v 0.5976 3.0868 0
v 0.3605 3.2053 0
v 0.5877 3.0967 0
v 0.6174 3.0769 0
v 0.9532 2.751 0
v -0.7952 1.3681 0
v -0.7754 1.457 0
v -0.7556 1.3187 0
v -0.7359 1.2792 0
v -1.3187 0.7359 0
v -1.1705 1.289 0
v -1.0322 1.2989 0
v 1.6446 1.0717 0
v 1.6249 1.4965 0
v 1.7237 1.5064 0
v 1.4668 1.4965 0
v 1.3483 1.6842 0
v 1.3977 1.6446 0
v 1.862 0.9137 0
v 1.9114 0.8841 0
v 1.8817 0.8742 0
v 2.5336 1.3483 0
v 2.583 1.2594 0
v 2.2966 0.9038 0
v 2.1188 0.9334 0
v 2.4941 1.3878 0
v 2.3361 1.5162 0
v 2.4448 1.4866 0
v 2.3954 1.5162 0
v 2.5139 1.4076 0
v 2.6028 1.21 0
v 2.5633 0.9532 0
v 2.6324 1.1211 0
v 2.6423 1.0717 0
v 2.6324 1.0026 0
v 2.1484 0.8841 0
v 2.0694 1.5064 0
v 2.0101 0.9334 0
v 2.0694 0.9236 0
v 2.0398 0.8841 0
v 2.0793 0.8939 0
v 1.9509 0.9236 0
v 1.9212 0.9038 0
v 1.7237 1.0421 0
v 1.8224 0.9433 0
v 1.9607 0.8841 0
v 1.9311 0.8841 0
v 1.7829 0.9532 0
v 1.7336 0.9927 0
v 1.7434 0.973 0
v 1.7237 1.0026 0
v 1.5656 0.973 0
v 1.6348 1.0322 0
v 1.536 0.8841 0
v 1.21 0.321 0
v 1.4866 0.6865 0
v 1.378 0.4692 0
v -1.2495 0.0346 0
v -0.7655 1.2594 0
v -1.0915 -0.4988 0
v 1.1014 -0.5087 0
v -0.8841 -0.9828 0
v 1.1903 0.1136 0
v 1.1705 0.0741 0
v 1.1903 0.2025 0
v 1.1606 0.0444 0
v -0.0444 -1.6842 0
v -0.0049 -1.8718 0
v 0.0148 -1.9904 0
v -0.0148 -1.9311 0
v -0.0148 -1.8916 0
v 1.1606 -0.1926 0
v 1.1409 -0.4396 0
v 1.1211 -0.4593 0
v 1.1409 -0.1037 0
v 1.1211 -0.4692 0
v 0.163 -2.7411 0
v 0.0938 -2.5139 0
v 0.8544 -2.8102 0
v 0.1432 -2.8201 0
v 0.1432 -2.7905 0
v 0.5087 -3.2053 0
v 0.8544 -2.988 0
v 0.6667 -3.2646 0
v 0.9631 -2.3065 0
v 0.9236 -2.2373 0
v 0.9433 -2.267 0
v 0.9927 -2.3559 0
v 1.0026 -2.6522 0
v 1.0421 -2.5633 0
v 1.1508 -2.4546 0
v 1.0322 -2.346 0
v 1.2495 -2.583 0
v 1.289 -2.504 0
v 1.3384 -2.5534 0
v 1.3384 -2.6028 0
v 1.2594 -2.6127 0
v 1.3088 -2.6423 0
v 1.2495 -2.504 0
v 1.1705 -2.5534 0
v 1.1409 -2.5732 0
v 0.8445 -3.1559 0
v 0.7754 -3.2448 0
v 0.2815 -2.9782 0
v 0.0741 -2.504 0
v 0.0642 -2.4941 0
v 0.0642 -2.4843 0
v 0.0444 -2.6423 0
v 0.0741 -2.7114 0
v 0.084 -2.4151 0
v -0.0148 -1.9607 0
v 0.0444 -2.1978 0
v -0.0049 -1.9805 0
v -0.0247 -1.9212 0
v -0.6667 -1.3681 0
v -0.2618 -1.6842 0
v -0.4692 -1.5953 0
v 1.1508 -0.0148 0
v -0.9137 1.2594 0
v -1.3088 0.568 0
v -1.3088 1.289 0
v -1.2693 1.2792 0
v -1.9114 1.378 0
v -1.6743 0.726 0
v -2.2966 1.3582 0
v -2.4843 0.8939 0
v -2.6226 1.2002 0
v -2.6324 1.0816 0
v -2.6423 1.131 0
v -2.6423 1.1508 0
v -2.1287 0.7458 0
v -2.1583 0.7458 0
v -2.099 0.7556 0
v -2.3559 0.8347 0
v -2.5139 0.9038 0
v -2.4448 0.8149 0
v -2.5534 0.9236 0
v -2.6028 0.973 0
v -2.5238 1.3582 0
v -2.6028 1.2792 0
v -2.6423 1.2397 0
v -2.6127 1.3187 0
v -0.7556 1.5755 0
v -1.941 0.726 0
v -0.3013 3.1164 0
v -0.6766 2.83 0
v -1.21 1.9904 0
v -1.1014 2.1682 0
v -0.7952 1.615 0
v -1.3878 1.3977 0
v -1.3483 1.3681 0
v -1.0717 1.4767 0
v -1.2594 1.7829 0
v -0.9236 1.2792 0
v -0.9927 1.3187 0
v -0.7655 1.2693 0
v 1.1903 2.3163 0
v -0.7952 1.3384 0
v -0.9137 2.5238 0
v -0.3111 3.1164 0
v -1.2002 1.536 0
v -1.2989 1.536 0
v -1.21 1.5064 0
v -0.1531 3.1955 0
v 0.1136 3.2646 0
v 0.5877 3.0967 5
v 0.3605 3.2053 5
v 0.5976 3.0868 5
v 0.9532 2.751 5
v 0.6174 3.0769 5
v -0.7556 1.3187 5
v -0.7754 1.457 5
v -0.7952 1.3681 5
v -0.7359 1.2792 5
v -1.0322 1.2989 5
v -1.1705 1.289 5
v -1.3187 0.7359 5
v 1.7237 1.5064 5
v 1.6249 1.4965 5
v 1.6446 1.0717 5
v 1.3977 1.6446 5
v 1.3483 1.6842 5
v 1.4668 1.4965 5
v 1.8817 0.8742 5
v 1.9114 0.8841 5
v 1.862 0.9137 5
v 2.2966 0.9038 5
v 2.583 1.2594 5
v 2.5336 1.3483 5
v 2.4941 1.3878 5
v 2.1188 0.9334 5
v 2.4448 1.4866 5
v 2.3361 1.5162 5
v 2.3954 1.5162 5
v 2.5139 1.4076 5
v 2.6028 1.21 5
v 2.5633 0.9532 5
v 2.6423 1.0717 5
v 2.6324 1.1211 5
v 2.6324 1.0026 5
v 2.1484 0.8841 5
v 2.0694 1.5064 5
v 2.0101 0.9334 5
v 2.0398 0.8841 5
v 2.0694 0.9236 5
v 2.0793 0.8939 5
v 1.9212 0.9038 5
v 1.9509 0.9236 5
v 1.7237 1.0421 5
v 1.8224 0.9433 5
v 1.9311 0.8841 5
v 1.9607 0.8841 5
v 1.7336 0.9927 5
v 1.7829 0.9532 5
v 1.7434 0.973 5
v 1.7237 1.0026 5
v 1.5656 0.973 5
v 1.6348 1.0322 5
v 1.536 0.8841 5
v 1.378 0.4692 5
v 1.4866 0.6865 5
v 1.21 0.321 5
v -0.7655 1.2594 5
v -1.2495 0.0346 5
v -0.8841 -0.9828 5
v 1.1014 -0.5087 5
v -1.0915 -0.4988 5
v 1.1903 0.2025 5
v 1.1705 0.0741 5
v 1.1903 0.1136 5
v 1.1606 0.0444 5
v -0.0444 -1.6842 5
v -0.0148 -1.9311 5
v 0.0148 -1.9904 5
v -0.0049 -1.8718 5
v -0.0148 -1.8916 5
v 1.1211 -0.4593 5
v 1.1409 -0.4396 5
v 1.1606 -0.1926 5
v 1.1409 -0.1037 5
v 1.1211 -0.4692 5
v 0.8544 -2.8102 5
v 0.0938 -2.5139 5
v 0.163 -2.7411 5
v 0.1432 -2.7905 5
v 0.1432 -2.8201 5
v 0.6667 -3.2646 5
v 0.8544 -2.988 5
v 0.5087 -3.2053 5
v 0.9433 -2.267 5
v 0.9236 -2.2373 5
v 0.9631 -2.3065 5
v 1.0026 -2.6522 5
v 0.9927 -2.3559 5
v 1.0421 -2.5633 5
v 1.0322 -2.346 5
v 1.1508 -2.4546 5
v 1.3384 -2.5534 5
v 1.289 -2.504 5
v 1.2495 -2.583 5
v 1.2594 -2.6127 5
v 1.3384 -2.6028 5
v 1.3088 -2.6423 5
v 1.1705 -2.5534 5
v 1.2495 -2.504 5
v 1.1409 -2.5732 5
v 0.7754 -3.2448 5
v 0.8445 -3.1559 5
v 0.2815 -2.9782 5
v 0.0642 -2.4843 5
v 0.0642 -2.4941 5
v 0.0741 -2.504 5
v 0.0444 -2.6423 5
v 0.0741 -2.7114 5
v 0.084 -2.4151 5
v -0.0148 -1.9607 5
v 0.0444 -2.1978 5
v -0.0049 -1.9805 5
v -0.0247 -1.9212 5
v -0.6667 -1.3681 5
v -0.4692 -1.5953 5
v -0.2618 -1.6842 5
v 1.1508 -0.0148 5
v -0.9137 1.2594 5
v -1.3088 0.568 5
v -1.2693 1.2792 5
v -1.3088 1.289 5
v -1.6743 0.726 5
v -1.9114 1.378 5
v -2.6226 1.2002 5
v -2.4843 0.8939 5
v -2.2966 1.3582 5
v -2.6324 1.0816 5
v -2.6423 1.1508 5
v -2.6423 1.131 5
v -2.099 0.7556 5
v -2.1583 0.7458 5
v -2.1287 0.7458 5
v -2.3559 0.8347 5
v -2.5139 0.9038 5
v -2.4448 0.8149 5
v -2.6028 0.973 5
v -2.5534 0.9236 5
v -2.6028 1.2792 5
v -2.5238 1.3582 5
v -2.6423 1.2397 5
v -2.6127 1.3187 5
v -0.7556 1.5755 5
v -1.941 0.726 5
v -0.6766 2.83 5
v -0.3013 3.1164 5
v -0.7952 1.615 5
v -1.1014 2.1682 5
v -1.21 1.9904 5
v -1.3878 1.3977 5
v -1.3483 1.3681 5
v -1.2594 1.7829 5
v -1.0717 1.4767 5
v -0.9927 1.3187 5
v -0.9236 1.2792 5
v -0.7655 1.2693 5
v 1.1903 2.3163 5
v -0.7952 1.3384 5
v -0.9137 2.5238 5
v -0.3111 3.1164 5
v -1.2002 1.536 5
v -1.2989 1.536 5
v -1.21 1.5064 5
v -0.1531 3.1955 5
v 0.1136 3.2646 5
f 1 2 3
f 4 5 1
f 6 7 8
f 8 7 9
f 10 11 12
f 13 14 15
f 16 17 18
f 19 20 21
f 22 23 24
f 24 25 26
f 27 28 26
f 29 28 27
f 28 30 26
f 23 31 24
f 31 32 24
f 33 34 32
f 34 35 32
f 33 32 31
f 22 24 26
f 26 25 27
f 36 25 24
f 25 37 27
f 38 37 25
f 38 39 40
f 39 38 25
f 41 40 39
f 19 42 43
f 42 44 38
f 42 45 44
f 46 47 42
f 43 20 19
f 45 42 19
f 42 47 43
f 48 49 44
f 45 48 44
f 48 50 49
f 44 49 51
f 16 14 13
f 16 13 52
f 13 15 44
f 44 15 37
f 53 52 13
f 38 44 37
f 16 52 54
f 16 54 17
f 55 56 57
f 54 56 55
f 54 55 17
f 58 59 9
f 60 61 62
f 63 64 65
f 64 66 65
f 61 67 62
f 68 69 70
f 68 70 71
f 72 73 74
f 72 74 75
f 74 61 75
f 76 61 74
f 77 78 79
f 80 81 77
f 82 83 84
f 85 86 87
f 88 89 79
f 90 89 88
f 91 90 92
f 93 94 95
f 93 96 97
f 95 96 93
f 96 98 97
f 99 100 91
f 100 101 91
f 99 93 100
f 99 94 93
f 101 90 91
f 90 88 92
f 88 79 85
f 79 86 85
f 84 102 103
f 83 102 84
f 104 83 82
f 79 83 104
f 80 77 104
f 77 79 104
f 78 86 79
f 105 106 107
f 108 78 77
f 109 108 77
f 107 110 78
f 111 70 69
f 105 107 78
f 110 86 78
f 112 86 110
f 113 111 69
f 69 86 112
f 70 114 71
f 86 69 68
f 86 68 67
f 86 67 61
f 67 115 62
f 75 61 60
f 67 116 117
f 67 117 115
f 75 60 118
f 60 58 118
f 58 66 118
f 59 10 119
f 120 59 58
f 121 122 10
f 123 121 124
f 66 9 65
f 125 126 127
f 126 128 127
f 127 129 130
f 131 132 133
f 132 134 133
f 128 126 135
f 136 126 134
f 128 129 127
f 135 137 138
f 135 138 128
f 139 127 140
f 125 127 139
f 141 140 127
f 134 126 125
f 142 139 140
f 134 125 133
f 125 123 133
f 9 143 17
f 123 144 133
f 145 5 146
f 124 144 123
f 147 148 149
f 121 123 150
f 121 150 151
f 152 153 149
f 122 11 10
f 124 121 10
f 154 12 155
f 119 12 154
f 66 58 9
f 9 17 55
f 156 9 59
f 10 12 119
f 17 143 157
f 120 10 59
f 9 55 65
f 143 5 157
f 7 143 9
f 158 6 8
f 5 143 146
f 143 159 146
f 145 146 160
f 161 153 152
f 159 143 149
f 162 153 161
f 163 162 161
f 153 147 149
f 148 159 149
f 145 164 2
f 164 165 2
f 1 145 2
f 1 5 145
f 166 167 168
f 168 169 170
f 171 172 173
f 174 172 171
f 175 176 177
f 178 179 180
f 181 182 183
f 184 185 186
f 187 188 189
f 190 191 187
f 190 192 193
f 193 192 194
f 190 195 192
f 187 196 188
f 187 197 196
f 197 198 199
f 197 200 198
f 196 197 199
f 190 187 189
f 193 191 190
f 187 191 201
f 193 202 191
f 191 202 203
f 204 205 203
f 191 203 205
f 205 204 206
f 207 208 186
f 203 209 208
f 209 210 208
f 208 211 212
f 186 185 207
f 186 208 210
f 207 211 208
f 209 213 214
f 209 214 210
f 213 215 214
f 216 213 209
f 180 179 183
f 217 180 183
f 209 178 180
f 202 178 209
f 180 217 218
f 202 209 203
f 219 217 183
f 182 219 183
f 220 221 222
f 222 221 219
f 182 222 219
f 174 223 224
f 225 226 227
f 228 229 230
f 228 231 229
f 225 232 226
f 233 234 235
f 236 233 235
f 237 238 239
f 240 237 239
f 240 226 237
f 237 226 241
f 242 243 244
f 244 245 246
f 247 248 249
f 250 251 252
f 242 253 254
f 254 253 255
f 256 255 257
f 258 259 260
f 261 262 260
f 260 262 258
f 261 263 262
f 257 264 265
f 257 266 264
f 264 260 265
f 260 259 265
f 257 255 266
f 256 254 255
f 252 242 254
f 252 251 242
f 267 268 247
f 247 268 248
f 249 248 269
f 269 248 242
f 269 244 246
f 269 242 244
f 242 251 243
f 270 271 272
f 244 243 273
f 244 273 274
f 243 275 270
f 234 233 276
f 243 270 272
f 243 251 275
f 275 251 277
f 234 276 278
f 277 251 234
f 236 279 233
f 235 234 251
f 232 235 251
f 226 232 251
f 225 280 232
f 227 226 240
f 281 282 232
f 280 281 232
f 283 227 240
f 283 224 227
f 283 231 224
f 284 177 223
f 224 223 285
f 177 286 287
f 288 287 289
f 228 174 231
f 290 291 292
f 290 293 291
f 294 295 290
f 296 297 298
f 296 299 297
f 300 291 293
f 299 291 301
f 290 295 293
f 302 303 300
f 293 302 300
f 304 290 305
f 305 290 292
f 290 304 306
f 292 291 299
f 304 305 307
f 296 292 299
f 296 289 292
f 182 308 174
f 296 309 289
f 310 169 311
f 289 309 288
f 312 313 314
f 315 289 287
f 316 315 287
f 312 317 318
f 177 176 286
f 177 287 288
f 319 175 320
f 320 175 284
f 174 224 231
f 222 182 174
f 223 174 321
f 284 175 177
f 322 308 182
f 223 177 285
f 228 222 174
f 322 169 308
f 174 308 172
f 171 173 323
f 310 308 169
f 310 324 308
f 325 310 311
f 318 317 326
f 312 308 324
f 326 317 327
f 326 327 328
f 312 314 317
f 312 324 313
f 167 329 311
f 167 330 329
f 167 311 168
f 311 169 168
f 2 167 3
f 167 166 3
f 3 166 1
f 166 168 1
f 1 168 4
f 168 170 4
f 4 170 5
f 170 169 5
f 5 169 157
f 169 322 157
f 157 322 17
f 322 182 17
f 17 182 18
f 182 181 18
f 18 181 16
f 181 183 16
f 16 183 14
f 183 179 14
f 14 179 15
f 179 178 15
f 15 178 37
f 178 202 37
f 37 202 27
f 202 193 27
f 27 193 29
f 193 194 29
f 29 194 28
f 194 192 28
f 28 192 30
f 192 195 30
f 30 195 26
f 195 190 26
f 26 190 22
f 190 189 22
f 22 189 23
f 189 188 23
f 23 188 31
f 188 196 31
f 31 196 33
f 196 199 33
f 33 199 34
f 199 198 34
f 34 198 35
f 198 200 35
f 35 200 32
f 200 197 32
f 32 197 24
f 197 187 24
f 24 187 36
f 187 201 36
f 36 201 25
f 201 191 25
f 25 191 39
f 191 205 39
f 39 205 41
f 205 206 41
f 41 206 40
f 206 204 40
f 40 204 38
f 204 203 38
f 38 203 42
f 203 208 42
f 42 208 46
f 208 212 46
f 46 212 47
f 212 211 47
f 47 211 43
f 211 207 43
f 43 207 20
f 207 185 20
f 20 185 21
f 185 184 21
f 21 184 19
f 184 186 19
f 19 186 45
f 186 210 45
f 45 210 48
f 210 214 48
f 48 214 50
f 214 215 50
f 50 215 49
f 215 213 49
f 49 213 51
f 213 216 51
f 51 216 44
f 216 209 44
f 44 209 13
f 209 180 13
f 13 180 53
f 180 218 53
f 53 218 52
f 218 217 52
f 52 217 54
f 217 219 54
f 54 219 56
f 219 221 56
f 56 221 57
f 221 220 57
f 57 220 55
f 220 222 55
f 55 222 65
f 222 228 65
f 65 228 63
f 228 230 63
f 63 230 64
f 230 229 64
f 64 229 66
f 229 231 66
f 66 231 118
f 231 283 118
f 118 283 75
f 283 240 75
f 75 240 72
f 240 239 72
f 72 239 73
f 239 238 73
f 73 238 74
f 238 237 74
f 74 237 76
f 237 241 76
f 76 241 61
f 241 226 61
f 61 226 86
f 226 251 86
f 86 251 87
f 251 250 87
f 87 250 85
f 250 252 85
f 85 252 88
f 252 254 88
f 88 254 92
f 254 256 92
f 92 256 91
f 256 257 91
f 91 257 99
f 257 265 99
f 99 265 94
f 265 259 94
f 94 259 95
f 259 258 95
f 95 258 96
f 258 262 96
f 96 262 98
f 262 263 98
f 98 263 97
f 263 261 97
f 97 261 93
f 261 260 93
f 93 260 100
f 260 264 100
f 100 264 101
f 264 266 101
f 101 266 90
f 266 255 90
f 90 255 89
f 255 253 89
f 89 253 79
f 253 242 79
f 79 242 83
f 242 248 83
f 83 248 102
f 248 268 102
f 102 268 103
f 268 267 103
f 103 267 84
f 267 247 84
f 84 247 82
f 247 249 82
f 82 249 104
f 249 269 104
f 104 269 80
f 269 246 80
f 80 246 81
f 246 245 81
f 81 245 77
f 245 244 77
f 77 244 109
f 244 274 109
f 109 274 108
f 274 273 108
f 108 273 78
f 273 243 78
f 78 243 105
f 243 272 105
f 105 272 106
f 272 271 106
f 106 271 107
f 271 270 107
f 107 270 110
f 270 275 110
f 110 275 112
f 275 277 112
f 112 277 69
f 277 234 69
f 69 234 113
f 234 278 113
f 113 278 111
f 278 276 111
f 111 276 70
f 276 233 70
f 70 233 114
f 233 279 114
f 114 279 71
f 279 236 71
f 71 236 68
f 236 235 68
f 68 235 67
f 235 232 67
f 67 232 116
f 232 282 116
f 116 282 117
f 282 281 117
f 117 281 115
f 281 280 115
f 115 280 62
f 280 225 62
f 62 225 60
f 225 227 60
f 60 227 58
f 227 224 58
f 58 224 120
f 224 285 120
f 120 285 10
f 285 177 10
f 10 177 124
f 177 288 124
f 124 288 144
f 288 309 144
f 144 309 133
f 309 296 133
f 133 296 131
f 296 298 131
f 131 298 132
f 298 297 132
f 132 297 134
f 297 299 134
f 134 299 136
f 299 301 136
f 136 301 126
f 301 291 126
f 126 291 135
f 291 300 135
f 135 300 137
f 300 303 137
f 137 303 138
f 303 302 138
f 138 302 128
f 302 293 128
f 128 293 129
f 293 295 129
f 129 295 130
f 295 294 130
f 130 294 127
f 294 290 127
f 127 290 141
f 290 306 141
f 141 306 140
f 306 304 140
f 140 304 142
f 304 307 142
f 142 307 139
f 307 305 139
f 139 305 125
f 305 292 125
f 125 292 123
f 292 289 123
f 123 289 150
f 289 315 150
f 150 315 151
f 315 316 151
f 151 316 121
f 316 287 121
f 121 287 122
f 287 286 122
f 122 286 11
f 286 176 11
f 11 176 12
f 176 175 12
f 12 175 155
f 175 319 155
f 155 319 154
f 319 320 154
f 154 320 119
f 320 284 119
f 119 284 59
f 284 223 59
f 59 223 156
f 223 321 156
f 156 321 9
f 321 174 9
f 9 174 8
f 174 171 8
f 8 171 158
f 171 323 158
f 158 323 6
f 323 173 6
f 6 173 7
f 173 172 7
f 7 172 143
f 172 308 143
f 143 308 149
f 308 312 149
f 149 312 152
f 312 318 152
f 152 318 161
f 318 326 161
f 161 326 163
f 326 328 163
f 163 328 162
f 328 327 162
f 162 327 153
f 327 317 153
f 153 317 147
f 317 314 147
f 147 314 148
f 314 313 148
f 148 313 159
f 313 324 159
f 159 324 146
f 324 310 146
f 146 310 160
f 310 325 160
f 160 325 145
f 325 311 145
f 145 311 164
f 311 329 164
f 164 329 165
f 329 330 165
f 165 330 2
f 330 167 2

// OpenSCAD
// Module names are of the form poly_<inkscape-path-id>().  As a result,
// you can associate a polygon in this OpenSCAD program with the corresponding
// SVG element in the Inkscape document by looking for the XML element with
// the attribute id="inkscape-path-id".

// fudge value is used to ensure that subtracted solids are a tad taller
// in the z dimension than the polygon being subtracted from.  This helps
// keep the resulting .stl file manifold.
fudge = 0.1;

module poly_path4208(h)
{
  scale([25.4/90, -25.4/90, 1]) union()
  {
    linear_extrude(height=h)
      polygon([[5.197500,-5.302500],[5.477500,-5.302500],[5.757500,-5.302500],[6.107500,-5.337500],[7.332500,-5.337500],[8.277500,-5.372500],[8.487500,-5.372500],[8.662500,-5.267500],[8.907500,-4.987500],[8.872500,-4.952500],[8.837500,-4.917500],[8.977500,-4.777500],[9.152500,-4.462500],[9.222500,-4.287500],[9.292500,-4.077500],[9.327500,-3.972500],[9.362500,-3.797500],[9.327500,-3.552500],[9.082500,-3.377500],[8.137500,-3.202500],[7.612500,-3.132500],[7.507500,-3.307500],[7.332500,-3.272500],[7.367500,-3.167500],[7.227500,-3.132500],[7.122500,-3.307500],[6.912500,-3.272500],[6.947500,-3.132500],[6.842500,-3.132500],[6.807500,-3.202500],[6.772500,-3.132500],[6.667500,-3.097500],[6.597500,-3.237500],[6.457500,-3.342500],[6.317500,-3.377500],[6.177500,-3.447500],[6.142500,-3.517500],[6.107500,-3.552500],[6.107500,-3.692500],[5.827500,-3.797500],[5.792500,-3.657500],[5.547500,-3.447500],[5.442500,-3.132500],[5.267500,-2.432500],[4.882500,-1.662500],[4.287500,-1.137500],[4.252500,-0.927500],[4.217500,-0.717500],[4.217500,-0.577500],[4.217500,-0.402500],[4.147500,-0.262500],[4.112500,-0.157500],[4.077500,0.052500],[4.042500,0.367500],[4.112500,0.682500],[4.042500,1.557500],[4.007500,1.592500],[3.972500,1.627500],[3.972500,1.662500],[3.902500,1.802500],[3.272500,7.927500],[3.342500,8.032500],[3.412500,8.172500],[3.517500,8.347500],[3.657500,8.312500],[4.077500,8.697500],[4.427500,8.872500],[4.567500,8.872500],[4.742500,9.047500],[4.742500,9.222500],[4.637500,9.362500],[4.462500,9.257500],[4.427500,9.152500],[4.147500,9.047500],[4.042500,9.117500],[3.692500,9.082500],[3.552500,9.397500],[3.027500,9.957500],[3.027500,10.132500],[3.027500,10.587500],[2.992500,11.182500],[2.747500,11.497500],[2.362500,11.567500],[1.802500,11.357500],[0.997500,10.552500],[0.507500,9.992500],[0.507500,9.887500],[0.577500,9.712500],[0.472500,9.677500],[0.262500,9.607500],[0.157500,9.362500],[0.332500,8.907500],[0.262500,8.872500],[0.227500,8.837500],[0.227500,8.802500],[0.297500,8.557500],[0.157500,7.787500],[0.052500,7.052500],[-0.017500,7.017500],[-0.052500,6.947500],[-0.052500,6.877500],[-0.052500,6.842500],[-0.087500,6.807500],[-0.052500,6.702500],[-0.017500,6.632500],[-0.157500,5.967500],[-0.927500,5.967500],[-1.662500,5.652500],[-2.362500,4.847500],[-3.132500,3.482500],[-3.867500,1.767500],[-4.427500,-0.122500],[-4.637500,-2.012500],[-4.672500,-2.607500],[-5.932500,-2.572500],[-6.877500,-2.572500],[-7.437500,-2.677500],[-7.542500,-2.642500],[-7.647500,-2.642500],[-8.347500,-2.957500],[-8.662500,-2.887500],[-8.802500,-3.167500],[-8.907500,-3.202500],[-9.047500,-3.272500],[-9.082500,-3.307500],[-9.222500,-3.447500],[-9.327500,-3.832500],[-9.362500,-4.007500],[-9.362500,-4.077500],[-9.292500,-4.252500],[-9.362500,-4.392500],[-9.222500,-4.532500],[-9.257500,-4.672500],[-8.942500,-4.812500],[-8.137500,-4.812500],[-6.772500,-4.882500],[-4.917500,-4.952500],[-4.777500,-4.847500],[-4.637500,-4.567500],[-4.497500,-4.532500],[-4.147500,-4.567500],[-3.657500,-4.602500],[-3.517500,-4.672500],[-3.272500,-4.532500],[-3.237500,-4.462500],[-2.712500,-4.462500],[-2.712500,-4.497500],[-2.607500,-4.532500],[-2.642500,-4.602500],[-2.677500,-4.672500],[-2.817500,-4.742500],[-2.817500,-4.847500],[-2.747500,-5.162500],[-2.677500,-5.582500],[-2.817500,-5.722500],[-3.797500,-5.232500],[-4.252500,-5.442500],[-4.287500,-5.337500],[-4.602500,-5.442500],[-4.462500,-6.317500],[-4.287500,-7.052500],[-3.902500,-7.682500],[-3.237500,-8.942500],[-2.397500,-10.027500],[-1.102500,-11.042500],[-1.067500,-11.042500],[-0.542500,-11.322500],[0.402500,-11.567500],[1.277500,-11.357500],[2.082500,-10.972500],[2.117500,-10.937500],[2.187500,-10.902500],[3.377500,-9.747500],[4.217500,-8.207500],[4.777500,-5.967500],[4.952500,-5.827500],[5.197500,-5.302500]]);
  }
}

poly_path4208(5);
